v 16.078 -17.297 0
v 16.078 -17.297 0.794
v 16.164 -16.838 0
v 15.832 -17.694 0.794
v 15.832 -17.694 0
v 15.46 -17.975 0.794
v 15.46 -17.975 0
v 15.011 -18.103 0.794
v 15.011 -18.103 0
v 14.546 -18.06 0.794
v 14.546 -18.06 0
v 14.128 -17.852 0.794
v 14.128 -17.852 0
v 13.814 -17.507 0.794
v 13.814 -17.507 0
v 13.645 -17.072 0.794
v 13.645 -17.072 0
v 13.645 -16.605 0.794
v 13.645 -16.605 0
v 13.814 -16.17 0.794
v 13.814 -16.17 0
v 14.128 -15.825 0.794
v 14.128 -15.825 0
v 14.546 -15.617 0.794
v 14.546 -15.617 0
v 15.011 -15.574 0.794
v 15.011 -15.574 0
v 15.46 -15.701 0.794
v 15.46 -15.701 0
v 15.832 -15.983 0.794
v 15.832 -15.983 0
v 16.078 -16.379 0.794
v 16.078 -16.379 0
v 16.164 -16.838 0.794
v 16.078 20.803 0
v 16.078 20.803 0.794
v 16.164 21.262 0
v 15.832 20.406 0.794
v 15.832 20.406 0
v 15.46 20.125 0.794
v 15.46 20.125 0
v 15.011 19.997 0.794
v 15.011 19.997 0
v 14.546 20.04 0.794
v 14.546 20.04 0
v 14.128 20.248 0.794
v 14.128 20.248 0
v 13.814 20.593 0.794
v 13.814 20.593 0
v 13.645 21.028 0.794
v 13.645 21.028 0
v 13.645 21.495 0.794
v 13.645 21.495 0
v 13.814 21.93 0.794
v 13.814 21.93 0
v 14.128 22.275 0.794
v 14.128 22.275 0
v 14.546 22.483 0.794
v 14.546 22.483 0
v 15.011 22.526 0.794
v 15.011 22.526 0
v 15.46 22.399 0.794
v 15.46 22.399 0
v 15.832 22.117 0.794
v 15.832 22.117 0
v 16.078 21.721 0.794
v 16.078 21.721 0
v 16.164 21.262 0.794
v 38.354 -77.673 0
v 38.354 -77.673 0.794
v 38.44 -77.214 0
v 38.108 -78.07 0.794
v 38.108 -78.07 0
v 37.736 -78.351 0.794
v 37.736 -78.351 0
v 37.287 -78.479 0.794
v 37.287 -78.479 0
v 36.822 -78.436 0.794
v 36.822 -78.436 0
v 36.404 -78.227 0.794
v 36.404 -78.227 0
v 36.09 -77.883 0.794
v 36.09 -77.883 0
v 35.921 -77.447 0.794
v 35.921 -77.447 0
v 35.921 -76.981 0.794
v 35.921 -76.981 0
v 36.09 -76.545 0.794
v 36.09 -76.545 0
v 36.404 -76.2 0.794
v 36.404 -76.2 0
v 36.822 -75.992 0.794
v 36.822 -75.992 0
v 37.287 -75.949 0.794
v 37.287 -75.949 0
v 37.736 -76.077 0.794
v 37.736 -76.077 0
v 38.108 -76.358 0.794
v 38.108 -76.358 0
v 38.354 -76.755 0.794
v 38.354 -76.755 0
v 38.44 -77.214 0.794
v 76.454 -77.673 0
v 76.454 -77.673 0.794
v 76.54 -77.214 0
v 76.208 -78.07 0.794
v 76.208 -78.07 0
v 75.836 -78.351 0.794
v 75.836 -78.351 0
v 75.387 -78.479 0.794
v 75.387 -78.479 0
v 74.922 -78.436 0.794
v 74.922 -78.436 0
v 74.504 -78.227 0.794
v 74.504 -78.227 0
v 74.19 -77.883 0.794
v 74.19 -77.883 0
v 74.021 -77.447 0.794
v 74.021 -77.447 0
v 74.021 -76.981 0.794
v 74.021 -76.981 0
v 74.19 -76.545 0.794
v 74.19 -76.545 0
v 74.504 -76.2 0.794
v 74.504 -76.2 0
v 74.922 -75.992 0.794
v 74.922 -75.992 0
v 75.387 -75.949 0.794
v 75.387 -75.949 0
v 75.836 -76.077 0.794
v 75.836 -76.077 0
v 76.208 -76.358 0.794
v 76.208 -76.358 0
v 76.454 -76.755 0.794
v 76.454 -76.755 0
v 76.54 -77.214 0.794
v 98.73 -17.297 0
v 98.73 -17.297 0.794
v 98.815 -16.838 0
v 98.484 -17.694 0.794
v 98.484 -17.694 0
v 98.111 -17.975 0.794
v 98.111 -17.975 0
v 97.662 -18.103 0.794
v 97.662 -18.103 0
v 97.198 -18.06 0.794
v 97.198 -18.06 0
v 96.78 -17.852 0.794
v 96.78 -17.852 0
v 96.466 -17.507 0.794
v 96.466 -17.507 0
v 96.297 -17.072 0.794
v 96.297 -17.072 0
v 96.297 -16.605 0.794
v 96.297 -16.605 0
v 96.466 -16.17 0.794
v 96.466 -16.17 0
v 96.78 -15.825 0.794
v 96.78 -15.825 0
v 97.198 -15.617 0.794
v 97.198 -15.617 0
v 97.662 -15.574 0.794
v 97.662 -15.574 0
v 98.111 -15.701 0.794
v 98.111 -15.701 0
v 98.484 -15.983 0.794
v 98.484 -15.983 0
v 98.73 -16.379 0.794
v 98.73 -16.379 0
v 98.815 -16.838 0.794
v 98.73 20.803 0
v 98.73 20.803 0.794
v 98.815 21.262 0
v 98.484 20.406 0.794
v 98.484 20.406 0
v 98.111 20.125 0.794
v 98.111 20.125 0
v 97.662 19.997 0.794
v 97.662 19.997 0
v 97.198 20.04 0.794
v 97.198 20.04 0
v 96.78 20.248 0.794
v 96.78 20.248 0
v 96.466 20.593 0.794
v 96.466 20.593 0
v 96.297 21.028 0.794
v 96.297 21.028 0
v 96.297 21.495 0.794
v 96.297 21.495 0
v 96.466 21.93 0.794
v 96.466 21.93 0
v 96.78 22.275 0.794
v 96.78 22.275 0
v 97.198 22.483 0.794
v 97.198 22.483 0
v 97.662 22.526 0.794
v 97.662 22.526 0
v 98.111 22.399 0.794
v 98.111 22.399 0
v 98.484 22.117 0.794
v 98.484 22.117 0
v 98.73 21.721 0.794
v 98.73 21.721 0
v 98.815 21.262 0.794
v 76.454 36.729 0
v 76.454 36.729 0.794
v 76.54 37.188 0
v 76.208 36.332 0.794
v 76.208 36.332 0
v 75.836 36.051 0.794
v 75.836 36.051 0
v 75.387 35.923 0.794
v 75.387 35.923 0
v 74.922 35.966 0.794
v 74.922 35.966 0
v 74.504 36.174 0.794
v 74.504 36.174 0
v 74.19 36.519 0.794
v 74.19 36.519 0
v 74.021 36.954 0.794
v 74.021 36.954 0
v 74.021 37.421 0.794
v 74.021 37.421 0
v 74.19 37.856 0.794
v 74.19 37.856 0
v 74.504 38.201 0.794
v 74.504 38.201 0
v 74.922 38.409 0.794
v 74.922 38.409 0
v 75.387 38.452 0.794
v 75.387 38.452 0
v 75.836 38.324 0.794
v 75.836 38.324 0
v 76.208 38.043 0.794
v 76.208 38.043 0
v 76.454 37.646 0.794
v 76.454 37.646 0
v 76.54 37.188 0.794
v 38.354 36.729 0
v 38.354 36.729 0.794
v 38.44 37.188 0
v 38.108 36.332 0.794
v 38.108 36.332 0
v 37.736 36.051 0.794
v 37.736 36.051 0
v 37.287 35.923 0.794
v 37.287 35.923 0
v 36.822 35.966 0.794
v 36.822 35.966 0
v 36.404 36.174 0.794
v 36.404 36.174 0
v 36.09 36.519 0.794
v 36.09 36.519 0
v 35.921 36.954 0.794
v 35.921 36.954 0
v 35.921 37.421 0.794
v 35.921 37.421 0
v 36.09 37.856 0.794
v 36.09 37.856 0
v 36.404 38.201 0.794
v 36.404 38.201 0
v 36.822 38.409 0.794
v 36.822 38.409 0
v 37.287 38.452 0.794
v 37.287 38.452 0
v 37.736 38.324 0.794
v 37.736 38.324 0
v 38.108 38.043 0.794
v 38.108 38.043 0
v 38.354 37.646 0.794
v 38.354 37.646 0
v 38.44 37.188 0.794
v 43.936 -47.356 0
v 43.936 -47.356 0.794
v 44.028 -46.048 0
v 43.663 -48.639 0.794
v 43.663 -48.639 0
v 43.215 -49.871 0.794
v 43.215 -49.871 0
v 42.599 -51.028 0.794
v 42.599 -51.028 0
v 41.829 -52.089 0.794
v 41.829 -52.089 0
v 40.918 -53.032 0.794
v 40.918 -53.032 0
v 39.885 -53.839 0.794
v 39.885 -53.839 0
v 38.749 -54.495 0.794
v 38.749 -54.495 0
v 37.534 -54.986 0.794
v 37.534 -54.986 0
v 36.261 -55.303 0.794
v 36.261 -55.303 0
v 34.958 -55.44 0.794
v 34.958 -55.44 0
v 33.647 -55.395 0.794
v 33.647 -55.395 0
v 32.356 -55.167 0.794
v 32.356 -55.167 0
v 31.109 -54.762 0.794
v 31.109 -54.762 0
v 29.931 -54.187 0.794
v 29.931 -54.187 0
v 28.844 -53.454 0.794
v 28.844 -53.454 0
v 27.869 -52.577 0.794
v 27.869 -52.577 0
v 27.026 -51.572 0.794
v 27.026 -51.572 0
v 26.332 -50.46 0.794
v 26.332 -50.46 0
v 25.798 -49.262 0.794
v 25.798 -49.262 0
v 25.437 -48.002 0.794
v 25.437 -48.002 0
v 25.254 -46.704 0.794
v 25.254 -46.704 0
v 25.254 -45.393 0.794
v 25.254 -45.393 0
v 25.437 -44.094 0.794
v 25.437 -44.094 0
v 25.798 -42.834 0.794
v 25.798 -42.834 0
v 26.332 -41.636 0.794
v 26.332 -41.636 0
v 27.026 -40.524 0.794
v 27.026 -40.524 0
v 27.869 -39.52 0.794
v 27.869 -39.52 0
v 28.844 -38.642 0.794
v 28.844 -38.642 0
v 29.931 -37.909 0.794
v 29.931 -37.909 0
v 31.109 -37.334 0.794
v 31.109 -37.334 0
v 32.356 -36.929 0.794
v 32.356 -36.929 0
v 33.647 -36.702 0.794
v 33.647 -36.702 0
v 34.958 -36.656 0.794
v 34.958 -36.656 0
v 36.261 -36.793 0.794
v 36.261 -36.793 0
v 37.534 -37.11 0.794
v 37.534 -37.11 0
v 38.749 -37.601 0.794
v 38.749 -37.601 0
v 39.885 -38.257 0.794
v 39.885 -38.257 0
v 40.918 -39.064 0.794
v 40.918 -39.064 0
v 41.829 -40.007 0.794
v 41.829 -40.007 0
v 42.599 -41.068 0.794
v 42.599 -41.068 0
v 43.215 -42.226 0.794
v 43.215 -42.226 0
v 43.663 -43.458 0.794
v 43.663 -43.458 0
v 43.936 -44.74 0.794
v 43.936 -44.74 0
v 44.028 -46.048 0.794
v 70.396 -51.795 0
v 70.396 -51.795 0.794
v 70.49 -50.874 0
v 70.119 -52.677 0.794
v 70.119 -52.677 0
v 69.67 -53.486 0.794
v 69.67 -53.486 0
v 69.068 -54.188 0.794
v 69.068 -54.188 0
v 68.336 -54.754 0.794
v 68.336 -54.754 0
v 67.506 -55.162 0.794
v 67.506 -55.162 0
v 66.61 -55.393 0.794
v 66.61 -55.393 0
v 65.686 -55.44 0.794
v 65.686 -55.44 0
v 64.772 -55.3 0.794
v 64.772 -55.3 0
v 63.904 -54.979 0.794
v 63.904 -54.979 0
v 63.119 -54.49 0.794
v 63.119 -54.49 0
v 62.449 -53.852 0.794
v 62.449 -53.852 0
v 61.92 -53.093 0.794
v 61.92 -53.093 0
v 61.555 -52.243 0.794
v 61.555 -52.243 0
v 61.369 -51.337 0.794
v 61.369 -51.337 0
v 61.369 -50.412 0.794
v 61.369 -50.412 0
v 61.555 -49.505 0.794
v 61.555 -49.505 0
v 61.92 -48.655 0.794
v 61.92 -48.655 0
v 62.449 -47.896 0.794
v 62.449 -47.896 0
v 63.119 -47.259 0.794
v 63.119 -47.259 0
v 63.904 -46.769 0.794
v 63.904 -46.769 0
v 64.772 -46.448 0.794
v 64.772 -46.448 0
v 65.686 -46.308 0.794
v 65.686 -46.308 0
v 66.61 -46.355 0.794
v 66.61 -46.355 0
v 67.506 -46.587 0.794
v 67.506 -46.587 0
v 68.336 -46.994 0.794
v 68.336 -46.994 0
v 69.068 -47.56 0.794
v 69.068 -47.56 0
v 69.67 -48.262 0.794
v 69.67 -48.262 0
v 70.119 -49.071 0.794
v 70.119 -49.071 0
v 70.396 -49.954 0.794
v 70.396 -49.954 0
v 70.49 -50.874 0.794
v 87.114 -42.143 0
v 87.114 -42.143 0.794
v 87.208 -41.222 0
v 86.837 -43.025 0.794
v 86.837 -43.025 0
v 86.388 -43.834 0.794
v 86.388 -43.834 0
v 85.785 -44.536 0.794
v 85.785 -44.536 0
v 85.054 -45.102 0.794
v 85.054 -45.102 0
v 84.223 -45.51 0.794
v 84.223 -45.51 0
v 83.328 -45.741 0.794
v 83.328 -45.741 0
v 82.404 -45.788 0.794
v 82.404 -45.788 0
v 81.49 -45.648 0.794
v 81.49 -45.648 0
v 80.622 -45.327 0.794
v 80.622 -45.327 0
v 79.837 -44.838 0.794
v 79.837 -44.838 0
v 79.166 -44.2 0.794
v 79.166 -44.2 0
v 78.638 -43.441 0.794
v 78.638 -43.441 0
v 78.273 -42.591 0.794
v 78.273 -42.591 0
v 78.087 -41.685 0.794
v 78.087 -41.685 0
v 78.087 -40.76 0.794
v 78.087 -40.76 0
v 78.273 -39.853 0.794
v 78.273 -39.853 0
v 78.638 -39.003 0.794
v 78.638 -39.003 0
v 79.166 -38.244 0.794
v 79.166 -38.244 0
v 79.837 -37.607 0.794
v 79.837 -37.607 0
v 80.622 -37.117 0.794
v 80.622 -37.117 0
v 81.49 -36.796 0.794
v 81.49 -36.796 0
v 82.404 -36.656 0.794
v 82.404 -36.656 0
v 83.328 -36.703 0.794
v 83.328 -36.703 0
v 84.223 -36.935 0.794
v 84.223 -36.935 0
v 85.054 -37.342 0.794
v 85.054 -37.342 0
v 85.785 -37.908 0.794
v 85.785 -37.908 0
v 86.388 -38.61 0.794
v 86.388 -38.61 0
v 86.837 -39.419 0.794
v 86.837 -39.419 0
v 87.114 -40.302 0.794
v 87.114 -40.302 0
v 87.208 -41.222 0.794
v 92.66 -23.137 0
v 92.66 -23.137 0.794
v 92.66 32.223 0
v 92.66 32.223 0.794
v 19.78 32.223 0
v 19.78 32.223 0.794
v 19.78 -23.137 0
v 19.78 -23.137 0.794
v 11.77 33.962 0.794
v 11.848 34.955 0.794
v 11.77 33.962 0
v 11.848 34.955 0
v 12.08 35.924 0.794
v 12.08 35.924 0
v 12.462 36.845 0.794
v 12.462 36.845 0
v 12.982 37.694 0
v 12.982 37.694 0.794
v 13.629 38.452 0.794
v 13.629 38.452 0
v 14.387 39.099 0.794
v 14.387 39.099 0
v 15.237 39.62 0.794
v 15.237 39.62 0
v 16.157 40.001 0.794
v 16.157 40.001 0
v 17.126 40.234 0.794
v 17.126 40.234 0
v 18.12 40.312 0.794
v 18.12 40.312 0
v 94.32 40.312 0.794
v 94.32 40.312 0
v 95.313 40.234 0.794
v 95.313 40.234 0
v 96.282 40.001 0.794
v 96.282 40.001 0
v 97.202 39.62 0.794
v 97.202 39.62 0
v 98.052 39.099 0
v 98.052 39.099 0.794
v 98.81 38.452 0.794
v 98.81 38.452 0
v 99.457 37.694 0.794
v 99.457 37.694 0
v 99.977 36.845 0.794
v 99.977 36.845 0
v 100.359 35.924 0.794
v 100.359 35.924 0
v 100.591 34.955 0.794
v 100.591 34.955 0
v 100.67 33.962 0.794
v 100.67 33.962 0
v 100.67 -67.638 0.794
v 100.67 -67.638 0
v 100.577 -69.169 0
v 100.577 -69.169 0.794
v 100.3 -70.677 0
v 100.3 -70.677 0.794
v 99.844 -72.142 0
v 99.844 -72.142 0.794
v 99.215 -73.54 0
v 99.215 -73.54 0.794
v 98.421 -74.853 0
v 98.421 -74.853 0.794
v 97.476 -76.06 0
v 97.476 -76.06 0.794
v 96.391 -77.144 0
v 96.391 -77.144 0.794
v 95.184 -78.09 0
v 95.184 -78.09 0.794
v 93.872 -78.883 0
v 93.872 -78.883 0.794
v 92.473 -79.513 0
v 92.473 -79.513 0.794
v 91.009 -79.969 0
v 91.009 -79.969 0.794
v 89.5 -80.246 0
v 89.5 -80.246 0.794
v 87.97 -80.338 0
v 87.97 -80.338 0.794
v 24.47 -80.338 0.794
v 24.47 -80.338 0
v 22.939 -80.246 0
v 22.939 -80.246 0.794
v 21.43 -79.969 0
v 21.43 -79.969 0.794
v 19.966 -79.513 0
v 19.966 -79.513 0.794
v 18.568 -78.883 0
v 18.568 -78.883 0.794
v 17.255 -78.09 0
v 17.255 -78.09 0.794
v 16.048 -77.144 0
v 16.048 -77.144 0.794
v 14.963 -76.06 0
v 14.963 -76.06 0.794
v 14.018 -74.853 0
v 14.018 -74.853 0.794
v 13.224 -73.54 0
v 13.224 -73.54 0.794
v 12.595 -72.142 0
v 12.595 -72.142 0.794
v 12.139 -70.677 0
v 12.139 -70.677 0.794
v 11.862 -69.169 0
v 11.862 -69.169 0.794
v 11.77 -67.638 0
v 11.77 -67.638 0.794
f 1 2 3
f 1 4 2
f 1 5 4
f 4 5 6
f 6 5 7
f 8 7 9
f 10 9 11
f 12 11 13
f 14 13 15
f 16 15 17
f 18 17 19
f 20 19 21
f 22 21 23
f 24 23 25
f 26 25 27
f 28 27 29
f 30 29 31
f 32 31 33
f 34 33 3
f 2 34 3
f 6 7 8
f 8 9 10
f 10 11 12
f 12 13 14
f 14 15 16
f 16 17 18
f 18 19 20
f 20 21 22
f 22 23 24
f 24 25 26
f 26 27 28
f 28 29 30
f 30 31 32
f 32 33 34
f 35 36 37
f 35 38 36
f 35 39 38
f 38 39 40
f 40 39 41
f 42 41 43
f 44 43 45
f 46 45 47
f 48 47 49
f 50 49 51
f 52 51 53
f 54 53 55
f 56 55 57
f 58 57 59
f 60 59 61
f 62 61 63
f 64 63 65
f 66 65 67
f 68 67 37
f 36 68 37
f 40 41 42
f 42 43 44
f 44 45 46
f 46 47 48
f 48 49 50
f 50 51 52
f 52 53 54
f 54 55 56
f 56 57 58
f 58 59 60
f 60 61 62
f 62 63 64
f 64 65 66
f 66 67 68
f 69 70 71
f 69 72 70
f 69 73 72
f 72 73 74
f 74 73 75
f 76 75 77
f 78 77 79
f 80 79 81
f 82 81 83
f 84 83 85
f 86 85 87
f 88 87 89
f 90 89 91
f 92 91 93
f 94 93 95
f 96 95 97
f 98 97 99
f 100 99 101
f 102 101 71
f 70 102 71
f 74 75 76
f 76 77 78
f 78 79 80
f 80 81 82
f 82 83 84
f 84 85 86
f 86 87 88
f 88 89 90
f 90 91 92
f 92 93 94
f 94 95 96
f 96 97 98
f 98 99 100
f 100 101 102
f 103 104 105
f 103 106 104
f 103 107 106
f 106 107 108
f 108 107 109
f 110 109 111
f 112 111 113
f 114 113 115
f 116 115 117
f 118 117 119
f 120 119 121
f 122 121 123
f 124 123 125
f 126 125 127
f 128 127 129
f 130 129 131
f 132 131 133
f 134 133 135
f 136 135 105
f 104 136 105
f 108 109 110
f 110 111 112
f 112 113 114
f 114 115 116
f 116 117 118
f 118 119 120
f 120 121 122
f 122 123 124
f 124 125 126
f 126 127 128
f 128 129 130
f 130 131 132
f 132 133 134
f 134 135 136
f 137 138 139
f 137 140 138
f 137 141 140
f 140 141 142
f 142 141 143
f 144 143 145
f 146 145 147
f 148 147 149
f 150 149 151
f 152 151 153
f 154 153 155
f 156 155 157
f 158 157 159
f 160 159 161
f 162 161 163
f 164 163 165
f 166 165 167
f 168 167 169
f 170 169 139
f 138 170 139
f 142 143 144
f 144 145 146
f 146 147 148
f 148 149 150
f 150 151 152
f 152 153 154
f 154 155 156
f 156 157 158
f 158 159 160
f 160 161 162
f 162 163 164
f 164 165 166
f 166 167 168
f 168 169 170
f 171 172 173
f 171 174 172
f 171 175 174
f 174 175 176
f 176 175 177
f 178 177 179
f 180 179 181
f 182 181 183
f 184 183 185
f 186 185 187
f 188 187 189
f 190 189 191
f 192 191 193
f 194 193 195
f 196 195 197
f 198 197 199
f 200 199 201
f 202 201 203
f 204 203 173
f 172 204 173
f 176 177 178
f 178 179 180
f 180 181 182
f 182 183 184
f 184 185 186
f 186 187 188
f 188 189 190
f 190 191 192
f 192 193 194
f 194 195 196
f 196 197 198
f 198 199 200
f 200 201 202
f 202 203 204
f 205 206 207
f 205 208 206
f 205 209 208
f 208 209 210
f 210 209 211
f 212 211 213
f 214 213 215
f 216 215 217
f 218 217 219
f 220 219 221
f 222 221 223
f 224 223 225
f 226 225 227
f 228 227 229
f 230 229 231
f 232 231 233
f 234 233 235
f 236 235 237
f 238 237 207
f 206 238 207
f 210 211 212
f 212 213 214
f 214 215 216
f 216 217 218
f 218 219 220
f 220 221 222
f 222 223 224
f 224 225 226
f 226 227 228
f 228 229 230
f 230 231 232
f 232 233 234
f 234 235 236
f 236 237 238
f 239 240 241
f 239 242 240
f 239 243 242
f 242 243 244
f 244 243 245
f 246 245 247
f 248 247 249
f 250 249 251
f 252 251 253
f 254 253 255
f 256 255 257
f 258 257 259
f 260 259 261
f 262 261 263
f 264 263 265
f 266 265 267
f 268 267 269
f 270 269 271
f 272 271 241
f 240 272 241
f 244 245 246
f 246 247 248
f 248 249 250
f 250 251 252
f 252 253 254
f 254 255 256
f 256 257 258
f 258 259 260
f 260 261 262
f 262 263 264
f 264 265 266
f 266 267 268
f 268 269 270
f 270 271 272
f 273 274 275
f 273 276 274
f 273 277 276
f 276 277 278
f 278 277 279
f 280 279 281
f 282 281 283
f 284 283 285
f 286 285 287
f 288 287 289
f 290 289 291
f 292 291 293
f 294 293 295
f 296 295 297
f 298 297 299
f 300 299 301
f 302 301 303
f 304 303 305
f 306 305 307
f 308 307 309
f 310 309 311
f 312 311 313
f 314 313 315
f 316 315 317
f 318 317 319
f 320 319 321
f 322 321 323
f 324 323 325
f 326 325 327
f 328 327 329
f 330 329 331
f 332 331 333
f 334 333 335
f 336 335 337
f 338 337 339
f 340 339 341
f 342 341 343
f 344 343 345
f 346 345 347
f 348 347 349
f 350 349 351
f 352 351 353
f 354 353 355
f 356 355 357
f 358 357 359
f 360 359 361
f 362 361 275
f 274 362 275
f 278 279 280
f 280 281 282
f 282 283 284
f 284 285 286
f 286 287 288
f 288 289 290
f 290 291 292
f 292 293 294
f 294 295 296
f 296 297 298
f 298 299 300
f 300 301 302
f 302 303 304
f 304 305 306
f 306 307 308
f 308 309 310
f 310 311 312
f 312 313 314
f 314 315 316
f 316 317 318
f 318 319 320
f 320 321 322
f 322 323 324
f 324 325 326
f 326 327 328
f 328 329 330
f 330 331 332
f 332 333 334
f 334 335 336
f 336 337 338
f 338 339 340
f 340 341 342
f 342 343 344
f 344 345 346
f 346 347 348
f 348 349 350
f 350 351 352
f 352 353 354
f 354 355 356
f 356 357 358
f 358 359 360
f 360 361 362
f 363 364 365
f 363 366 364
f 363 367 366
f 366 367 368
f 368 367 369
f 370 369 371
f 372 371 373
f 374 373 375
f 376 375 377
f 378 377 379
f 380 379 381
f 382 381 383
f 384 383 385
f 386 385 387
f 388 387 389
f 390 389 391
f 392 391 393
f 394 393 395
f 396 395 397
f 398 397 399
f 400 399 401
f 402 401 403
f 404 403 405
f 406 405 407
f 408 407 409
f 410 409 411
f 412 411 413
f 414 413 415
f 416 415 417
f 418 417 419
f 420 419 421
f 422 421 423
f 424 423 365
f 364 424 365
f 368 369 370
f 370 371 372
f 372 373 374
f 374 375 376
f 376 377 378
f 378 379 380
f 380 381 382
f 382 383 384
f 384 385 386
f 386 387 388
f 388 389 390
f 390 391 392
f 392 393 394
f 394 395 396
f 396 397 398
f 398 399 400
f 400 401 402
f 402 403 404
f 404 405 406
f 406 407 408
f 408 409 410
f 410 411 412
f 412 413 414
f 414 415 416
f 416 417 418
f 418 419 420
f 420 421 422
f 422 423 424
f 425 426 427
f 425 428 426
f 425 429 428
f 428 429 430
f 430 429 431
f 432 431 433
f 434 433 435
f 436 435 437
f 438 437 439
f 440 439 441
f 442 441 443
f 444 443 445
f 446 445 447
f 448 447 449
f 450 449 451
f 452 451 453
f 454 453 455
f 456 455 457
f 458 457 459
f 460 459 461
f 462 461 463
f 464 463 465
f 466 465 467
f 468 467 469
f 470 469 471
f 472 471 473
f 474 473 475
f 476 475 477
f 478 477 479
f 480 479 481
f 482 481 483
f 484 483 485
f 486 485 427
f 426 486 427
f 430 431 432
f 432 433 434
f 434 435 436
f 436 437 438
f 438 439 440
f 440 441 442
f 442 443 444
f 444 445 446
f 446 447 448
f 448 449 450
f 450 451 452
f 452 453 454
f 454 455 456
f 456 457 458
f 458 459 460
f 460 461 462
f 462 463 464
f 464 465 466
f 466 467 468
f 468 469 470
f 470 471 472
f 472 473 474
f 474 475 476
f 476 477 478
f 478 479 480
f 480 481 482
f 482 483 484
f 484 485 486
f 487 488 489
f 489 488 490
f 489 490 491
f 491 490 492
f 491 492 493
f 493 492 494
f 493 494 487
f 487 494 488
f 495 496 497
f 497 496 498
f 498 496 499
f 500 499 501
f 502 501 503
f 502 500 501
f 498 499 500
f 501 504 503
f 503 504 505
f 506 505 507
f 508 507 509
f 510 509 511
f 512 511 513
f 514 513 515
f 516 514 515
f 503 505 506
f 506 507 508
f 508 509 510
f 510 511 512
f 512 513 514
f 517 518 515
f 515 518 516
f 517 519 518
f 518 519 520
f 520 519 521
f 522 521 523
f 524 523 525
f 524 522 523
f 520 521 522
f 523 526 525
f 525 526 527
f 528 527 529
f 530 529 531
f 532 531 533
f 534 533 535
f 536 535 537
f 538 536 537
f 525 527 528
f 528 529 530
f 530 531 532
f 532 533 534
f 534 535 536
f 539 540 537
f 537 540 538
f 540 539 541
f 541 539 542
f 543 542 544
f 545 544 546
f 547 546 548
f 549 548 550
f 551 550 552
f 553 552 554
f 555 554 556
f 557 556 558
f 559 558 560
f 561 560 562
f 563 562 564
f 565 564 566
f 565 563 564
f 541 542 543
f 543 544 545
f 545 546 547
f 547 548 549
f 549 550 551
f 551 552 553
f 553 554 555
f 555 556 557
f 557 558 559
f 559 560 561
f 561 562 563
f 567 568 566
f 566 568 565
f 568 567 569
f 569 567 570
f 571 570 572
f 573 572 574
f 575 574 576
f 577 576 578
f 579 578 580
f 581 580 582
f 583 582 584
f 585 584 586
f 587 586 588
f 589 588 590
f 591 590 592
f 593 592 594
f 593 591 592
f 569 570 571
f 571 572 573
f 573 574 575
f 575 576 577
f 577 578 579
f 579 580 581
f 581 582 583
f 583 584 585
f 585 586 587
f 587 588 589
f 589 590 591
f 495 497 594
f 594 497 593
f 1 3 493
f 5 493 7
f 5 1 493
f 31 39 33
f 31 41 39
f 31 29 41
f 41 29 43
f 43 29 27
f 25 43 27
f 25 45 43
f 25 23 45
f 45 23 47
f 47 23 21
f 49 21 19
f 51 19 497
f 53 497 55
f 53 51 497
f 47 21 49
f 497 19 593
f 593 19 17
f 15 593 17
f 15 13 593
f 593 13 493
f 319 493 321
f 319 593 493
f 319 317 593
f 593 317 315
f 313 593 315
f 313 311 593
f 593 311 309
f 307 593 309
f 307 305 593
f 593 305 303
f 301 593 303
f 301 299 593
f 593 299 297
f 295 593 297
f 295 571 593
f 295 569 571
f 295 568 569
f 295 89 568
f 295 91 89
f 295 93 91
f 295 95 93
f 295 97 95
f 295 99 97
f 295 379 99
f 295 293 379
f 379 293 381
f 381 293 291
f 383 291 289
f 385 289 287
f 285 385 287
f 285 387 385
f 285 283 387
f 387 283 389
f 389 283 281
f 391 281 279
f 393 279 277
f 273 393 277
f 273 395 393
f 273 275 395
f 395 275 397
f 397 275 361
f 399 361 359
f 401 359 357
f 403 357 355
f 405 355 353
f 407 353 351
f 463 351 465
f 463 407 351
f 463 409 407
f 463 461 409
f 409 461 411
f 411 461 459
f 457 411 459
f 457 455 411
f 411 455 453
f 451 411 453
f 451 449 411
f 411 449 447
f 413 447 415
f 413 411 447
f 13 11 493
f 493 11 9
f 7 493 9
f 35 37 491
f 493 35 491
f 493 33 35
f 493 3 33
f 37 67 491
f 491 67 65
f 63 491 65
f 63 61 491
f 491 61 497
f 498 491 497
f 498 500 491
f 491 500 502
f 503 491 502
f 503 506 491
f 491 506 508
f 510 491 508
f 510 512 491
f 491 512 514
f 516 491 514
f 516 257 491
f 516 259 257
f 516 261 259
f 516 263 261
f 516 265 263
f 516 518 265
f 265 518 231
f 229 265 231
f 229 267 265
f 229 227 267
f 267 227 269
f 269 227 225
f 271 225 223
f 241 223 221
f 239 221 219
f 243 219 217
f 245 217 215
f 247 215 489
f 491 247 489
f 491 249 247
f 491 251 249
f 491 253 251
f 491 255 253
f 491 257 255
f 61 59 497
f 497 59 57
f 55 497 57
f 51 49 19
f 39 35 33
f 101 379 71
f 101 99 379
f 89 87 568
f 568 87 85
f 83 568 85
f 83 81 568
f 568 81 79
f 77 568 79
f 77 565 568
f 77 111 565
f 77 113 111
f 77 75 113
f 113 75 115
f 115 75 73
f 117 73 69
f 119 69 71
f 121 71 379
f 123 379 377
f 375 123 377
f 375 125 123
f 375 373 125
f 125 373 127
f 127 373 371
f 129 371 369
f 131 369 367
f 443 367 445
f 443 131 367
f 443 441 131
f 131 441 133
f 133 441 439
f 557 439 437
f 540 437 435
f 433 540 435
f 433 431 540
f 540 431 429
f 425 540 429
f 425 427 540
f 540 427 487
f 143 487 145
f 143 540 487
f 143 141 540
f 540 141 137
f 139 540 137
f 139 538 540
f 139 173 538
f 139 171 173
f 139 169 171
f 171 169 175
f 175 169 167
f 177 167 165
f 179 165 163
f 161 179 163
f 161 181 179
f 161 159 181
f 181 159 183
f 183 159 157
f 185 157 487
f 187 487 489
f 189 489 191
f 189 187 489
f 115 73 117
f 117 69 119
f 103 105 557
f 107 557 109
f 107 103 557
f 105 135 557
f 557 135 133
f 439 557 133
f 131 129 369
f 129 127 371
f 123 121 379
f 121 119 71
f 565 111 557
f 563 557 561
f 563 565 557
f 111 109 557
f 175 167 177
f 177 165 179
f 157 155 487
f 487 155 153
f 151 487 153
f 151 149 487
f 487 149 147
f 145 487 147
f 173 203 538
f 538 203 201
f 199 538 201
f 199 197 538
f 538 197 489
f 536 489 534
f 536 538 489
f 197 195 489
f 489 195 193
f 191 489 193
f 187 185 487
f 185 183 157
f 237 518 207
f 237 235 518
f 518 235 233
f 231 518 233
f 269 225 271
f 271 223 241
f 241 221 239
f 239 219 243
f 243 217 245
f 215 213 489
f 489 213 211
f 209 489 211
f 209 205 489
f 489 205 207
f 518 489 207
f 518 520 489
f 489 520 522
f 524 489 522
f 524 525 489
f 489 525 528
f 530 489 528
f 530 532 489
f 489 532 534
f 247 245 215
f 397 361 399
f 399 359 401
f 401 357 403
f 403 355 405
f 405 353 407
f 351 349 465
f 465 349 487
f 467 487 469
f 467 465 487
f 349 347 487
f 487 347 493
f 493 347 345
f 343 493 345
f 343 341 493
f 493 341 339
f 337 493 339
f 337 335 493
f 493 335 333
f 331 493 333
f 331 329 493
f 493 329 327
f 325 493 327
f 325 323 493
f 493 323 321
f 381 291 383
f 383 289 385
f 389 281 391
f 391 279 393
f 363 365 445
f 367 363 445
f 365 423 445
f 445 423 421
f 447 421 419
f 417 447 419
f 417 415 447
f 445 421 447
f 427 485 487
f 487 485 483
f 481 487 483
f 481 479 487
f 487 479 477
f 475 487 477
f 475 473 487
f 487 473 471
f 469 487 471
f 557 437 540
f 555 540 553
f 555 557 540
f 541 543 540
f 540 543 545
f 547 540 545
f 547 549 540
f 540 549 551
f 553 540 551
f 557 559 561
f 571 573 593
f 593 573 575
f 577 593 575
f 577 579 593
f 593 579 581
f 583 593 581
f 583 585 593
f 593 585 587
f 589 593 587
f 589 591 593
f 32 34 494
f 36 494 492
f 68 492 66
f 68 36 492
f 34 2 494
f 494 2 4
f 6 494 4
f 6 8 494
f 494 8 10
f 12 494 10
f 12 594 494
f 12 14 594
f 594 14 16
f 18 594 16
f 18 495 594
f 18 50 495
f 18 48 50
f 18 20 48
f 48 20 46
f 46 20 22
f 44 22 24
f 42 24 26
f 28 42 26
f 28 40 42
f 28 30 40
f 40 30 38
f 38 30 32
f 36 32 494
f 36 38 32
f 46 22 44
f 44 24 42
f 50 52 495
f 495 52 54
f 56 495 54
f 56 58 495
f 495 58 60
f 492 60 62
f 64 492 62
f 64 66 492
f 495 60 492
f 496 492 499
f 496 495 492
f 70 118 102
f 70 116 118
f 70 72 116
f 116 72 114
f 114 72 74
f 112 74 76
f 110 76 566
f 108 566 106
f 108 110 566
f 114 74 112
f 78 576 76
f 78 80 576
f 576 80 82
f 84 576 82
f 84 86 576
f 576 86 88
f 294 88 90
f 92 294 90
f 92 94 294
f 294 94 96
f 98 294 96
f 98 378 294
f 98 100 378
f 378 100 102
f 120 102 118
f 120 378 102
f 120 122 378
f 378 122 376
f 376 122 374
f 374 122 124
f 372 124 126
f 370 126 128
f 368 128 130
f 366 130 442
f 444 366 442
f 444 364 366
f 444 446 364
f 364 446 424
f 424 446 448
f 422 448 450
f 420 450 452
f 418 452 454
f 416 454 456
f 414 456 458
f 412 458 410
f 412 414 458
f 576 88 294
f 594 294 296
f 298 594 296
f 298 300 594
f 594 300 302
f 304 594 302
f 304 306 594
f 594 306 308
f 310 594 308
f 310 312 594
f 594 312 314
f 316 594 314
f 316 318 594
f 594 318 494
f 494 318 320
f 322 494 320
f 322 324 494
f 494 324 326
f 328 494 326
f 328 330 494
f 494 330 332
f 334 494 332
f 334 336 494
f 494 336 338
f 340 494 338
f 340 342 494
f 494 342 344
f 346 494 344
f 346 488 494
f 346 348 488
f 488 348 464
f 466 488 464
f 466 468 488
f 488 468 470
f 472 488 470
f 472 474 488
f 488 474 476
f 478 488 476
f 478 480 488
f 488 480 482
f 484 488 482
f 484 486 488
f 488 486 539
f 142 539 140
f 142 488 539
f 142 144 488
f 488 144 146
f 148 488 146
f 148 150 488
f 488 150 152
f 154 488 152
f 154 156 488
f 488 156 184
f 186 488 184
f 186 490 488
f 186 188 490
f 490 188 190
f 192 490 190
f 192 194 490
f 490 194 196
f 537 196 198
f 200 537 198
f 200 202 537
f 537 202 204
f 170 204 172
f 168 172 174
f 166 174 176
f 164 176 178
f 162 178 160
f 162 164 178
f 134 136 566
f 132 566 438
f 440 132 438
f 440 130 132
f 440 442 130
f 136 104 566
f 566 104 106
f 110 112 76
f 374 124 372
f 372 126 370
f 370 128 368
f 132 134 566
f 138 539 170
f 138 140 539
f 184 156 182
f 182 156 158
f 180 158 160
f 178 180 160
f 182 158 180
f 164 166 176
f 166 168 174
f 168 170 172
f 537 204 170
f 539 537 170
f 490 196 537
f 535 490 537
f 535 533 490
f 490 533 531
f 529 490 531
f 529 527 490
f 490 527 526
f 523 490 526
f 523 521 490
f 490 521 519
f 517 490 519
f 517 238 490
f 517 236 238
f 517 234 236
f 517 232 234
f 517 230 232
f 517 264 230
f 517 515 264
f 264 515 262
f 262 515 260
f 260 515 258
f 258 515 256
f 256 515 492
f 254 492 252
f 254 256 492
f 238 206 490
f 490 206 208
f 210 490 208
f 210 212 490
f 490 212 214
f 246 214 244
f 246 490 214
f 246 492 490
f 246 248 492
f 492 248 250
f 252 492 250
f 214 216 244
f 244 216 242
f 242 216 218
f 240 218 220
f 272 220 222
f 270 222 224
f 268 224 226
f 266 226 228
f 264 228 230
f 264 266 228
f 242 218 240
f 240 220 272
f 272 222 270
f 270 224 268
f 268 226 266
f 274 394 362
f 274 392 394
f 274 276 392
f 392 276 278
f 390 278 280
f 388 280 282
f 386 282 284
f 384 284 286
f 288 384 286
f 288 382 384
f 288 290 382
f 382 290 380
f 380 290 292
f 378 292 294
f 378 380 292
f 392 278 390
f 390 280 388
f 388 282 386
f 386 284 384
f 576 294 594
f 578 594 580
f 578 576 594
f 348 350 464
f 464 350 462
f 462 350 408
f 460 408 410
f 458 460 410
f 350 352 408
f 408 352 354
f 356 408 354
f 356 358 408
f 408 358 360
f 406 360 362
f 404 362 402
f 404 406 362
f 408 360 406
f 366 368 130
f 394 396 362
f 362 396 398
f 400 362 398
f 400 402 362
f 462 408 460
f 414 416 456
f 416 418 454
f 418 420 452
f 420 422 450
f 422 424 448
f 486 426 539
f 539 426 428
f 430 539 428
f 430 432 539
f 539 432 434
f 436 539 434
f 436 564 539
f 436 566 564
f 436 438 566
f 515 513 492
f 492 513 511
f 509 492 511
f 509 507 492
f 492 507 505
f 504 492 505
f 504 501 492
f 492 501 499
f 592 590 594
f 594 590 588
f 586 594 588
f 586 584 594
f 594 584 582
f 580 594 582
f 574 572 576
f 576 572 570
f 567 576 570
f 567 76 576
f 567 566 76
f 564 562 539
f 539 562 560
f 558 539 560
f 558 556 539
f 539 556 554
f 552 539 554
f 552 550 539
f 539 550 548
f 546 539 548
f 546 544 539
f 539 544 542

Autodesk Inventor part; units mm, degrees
ref_plane "YZ Plane" through (0, 0, 0) normal (1, 0, 0) x (0, 1, 0)
ref_plane "XZ Plane" through (0, 0, 0) normal (0, 1, 0) x (-1, 0, 0)
ref_plane "XY Plane" through (0, 0, 0) normal (0, 0, 1) x (1, 0, 0)
sketch "Sketch1" plane through (0, 0, 0) normal (0, 0, 1) x (1, 0, 0)
  line L0 (11.7695, 33.9618) -> (11.7695, -67.6382)
  line L1 (100.6695, 33.9618) -> (100.6695, -67.6382)
  line L2 (18.1195, 40.3118) -> (94.3195, 40.3118)
  line L3 (24.4695, -80.3382) -> (87.9695, -80.3382)
  arc A0 (11.7695, -67.6382) -> (24.4695, -80.3382) centre (24.4695, -67.6382) ccw
  arc A1 (87.9695, -80.3382) -> (100.6695, -67.6382) centre (87.9695, -67.6382) ccw
  arc A2 (100.6695, 33.9618) -> (94.3195, 40.3118) centre (94.3195, 33.9618) ccw
  arc A3 (18.1195, 40.3118) -> (11.7695, 33.9618) centre (18.1195, 33.9618) ccw
  point P0 (0, 0)
  dimension "d0" = 12.7
  dimension "d1" = 6.35
  dimension "d2" = 120.65
  dimension "d3" = 88.9
extrude "Extrusion1" add sketch "Sketch1" along normal blind 0.7937
sketch "Sketch2" plane through (0, 0, 0.7937) normal (0, 0, 1) x (1, 0, 0)
  line L0 (11.7695, -67.6382) -> (11.7695, 33.9618) projected
  line L1 (100.6695, 33.9618) -> (100.6695, -67.6382) projected
  line L2 (18.1195, 40.3118) -> (94.3195, 40.3118) projected
  line L3 (19.7795, 32.2228) -> (92.6595, 32.2228)
  line L4 (92.6595, 32.2228) -> (92.6595, -23.1372)
  line L5 (92.6595, -23.1372) -> (19.7795, -23.1372)
  line L6 (19.7795, -23.1372) -> (19.7795, 32.2228)
  line L7 (87.9695, -80.3382) -> (24.4695, -80.3382) projected
  point P0 (0, 0)
  dimension "d7" = 8.089
  dimension "d22" = 72.88
  dimension "d23" = 8.01
  dimension "d24" = 8.01
  dimension "d25" = 55.36
  dimension "d70" = 80.89
  dimension "d71" = 57.201
  dimension "d72" = 112.561
extrude "Extrusion2" cut sketch "Sketch2" against normal through all
sketch "Sketch5" plane through (0, 0, 0.7937) normal (0, 0, 1) x (1, 0, 0)
  circle A0 centre (34.6295, -46.0482) radius 9.398
  circle A1 centre (82.6355, -41.2222) radius 4.572
  circle A2 centre (65.9178, -50.8742) radius 4.572
  line L0 (87.9695, -80.3382) -> (24.4695, -80.3382) projected
  line L1 (11.7695, -67.6382) -> (11.7695, 33.9618) projected
  line L2 (100.6695, 33.9618) -> (100.6695, -67.6382) projected
  line L3 (100.6695, -46.0482) -> (11.7695, -46.0482) construction
  line L4 (65.9178, -50.8742) -> (74.2766, -46.0482) construction
  line L5 (82.6355, -41.2222) -> (74.2766, -46.0482) construction
  line L6 (25.2315, -36.6502) -> (87.2075, -36.6502) construction
  line L7 (87.2075, -36.6502) -> (87.2075, -55.4462) construction
  line L8 (87.2075, -55.4462) -> (25.2315, -55.4462) construction
  line L9 (25.2315, -55.4462) -> (25.2315, -36.6502) construction
  point P0 (0, 0)
  dimension "d26" = 18.796
  dimension "d27" = 9.144
  dimension "d35" = 34.29
  dimension "d40" = 30
  dimension "d41" = 13.462
  dimension "d42" = 13.462
  dimension "d54" = 66.04
  dimension "d55" = 34.7518
  dimension "d56" = 18.034
  dimension "d57" = 29.464
  dimension "d58" = 39.116
extrude "Extrusion5" cut sketch "Sketch5" against normal through all
sketch "Sketch6" plane through (0, 0, 0.7937) normal (0, 0, 1) x (1, 0, 0)
  line L0 (52.111, -71.628) -> (60.3281, -71.628)
  arc A0 (52.111, -71.628) -> (49.1232, -73.533) centre (50.5369, -72.4548) ccw
  arc A1 (49.1232, -73.533) -> (52.111, -75.438) centre (50.5369, -74.6113) ccw
  line L1 (52.111, -75.438) -> (60.3281, -75.438)
  arc A2 (63.3159, -73.533) -> (60.3281, -71.628) centre (61.9022, -72.4548) ccw
  arc A3 (60.3281, -75.438) -> (63.3159, -73.533) centre (61.9022, -74.6113) ccw
  line L2 (11.7695, -67.6382) -> (11.7695, 33.9618) projected
  point P0 (0, 0)
  dimension "d43" = 3.81
  dimension "d44" = 1.778
  dimension "d45" = 8.2171
  dimension "d51" = 40.3415
  dimension "d52" = 2.1565
extrude "Extrusion6" [suppressed]
sketch "Sketch7" plane through (0, 0, 0.7937) normal (0, 0, 1) x (1, 0, 0)
  line L0 (11.7695, -67.6382) -> (11.7695, 33.9618) projected
  line L1 (87.9695, -80.3382) -> (24.4695, -80.3382) projected
  line L2 (100.6695, 33.9618) -> (100.6695, -67.6382) projected
  line L3 (18.1195, 40.3118) -> (94.3195, 40.3118) projected
  circle A0 centre (37.1695, 37.1876) radius 1.27
  circle A1 centre (75.2695, 37.1876) radius 1.27
  circle A2 centre (97.5453, 21.2618) radius 1.27
  circle A3 centre (97.5453, -16.8382) radius 1.27
  circle A4 centre (75.2695, -77.214) radius 1.27
  circle A5 centre (37.1695, -77.214) radius 1.27
  circle A6 centre (14.8937, 21.2618) radius 1.27
  circle A7 centre (14.8937, -16.8382) radius 1.27
  point P0 (0, 0)
  dimension "d59" = 2.54
  dimension "d60" = 3.1242
  dimension "d61" = 3.1242
  dimension "d62" = 3.1242
  dimension "d63" = 3.1242
  dimension "d64" = 25.4
  dimension "d65" = 19.05
  dimension "d66" = 38.1
  dimension "d67" = 38.1
extrude "Extrusion7" cut sketch "Sketch7" against normal through all
equation "\"d23\" = d24"
equation "\"d42\" = d41"
properties part number "lcd_spacer"
